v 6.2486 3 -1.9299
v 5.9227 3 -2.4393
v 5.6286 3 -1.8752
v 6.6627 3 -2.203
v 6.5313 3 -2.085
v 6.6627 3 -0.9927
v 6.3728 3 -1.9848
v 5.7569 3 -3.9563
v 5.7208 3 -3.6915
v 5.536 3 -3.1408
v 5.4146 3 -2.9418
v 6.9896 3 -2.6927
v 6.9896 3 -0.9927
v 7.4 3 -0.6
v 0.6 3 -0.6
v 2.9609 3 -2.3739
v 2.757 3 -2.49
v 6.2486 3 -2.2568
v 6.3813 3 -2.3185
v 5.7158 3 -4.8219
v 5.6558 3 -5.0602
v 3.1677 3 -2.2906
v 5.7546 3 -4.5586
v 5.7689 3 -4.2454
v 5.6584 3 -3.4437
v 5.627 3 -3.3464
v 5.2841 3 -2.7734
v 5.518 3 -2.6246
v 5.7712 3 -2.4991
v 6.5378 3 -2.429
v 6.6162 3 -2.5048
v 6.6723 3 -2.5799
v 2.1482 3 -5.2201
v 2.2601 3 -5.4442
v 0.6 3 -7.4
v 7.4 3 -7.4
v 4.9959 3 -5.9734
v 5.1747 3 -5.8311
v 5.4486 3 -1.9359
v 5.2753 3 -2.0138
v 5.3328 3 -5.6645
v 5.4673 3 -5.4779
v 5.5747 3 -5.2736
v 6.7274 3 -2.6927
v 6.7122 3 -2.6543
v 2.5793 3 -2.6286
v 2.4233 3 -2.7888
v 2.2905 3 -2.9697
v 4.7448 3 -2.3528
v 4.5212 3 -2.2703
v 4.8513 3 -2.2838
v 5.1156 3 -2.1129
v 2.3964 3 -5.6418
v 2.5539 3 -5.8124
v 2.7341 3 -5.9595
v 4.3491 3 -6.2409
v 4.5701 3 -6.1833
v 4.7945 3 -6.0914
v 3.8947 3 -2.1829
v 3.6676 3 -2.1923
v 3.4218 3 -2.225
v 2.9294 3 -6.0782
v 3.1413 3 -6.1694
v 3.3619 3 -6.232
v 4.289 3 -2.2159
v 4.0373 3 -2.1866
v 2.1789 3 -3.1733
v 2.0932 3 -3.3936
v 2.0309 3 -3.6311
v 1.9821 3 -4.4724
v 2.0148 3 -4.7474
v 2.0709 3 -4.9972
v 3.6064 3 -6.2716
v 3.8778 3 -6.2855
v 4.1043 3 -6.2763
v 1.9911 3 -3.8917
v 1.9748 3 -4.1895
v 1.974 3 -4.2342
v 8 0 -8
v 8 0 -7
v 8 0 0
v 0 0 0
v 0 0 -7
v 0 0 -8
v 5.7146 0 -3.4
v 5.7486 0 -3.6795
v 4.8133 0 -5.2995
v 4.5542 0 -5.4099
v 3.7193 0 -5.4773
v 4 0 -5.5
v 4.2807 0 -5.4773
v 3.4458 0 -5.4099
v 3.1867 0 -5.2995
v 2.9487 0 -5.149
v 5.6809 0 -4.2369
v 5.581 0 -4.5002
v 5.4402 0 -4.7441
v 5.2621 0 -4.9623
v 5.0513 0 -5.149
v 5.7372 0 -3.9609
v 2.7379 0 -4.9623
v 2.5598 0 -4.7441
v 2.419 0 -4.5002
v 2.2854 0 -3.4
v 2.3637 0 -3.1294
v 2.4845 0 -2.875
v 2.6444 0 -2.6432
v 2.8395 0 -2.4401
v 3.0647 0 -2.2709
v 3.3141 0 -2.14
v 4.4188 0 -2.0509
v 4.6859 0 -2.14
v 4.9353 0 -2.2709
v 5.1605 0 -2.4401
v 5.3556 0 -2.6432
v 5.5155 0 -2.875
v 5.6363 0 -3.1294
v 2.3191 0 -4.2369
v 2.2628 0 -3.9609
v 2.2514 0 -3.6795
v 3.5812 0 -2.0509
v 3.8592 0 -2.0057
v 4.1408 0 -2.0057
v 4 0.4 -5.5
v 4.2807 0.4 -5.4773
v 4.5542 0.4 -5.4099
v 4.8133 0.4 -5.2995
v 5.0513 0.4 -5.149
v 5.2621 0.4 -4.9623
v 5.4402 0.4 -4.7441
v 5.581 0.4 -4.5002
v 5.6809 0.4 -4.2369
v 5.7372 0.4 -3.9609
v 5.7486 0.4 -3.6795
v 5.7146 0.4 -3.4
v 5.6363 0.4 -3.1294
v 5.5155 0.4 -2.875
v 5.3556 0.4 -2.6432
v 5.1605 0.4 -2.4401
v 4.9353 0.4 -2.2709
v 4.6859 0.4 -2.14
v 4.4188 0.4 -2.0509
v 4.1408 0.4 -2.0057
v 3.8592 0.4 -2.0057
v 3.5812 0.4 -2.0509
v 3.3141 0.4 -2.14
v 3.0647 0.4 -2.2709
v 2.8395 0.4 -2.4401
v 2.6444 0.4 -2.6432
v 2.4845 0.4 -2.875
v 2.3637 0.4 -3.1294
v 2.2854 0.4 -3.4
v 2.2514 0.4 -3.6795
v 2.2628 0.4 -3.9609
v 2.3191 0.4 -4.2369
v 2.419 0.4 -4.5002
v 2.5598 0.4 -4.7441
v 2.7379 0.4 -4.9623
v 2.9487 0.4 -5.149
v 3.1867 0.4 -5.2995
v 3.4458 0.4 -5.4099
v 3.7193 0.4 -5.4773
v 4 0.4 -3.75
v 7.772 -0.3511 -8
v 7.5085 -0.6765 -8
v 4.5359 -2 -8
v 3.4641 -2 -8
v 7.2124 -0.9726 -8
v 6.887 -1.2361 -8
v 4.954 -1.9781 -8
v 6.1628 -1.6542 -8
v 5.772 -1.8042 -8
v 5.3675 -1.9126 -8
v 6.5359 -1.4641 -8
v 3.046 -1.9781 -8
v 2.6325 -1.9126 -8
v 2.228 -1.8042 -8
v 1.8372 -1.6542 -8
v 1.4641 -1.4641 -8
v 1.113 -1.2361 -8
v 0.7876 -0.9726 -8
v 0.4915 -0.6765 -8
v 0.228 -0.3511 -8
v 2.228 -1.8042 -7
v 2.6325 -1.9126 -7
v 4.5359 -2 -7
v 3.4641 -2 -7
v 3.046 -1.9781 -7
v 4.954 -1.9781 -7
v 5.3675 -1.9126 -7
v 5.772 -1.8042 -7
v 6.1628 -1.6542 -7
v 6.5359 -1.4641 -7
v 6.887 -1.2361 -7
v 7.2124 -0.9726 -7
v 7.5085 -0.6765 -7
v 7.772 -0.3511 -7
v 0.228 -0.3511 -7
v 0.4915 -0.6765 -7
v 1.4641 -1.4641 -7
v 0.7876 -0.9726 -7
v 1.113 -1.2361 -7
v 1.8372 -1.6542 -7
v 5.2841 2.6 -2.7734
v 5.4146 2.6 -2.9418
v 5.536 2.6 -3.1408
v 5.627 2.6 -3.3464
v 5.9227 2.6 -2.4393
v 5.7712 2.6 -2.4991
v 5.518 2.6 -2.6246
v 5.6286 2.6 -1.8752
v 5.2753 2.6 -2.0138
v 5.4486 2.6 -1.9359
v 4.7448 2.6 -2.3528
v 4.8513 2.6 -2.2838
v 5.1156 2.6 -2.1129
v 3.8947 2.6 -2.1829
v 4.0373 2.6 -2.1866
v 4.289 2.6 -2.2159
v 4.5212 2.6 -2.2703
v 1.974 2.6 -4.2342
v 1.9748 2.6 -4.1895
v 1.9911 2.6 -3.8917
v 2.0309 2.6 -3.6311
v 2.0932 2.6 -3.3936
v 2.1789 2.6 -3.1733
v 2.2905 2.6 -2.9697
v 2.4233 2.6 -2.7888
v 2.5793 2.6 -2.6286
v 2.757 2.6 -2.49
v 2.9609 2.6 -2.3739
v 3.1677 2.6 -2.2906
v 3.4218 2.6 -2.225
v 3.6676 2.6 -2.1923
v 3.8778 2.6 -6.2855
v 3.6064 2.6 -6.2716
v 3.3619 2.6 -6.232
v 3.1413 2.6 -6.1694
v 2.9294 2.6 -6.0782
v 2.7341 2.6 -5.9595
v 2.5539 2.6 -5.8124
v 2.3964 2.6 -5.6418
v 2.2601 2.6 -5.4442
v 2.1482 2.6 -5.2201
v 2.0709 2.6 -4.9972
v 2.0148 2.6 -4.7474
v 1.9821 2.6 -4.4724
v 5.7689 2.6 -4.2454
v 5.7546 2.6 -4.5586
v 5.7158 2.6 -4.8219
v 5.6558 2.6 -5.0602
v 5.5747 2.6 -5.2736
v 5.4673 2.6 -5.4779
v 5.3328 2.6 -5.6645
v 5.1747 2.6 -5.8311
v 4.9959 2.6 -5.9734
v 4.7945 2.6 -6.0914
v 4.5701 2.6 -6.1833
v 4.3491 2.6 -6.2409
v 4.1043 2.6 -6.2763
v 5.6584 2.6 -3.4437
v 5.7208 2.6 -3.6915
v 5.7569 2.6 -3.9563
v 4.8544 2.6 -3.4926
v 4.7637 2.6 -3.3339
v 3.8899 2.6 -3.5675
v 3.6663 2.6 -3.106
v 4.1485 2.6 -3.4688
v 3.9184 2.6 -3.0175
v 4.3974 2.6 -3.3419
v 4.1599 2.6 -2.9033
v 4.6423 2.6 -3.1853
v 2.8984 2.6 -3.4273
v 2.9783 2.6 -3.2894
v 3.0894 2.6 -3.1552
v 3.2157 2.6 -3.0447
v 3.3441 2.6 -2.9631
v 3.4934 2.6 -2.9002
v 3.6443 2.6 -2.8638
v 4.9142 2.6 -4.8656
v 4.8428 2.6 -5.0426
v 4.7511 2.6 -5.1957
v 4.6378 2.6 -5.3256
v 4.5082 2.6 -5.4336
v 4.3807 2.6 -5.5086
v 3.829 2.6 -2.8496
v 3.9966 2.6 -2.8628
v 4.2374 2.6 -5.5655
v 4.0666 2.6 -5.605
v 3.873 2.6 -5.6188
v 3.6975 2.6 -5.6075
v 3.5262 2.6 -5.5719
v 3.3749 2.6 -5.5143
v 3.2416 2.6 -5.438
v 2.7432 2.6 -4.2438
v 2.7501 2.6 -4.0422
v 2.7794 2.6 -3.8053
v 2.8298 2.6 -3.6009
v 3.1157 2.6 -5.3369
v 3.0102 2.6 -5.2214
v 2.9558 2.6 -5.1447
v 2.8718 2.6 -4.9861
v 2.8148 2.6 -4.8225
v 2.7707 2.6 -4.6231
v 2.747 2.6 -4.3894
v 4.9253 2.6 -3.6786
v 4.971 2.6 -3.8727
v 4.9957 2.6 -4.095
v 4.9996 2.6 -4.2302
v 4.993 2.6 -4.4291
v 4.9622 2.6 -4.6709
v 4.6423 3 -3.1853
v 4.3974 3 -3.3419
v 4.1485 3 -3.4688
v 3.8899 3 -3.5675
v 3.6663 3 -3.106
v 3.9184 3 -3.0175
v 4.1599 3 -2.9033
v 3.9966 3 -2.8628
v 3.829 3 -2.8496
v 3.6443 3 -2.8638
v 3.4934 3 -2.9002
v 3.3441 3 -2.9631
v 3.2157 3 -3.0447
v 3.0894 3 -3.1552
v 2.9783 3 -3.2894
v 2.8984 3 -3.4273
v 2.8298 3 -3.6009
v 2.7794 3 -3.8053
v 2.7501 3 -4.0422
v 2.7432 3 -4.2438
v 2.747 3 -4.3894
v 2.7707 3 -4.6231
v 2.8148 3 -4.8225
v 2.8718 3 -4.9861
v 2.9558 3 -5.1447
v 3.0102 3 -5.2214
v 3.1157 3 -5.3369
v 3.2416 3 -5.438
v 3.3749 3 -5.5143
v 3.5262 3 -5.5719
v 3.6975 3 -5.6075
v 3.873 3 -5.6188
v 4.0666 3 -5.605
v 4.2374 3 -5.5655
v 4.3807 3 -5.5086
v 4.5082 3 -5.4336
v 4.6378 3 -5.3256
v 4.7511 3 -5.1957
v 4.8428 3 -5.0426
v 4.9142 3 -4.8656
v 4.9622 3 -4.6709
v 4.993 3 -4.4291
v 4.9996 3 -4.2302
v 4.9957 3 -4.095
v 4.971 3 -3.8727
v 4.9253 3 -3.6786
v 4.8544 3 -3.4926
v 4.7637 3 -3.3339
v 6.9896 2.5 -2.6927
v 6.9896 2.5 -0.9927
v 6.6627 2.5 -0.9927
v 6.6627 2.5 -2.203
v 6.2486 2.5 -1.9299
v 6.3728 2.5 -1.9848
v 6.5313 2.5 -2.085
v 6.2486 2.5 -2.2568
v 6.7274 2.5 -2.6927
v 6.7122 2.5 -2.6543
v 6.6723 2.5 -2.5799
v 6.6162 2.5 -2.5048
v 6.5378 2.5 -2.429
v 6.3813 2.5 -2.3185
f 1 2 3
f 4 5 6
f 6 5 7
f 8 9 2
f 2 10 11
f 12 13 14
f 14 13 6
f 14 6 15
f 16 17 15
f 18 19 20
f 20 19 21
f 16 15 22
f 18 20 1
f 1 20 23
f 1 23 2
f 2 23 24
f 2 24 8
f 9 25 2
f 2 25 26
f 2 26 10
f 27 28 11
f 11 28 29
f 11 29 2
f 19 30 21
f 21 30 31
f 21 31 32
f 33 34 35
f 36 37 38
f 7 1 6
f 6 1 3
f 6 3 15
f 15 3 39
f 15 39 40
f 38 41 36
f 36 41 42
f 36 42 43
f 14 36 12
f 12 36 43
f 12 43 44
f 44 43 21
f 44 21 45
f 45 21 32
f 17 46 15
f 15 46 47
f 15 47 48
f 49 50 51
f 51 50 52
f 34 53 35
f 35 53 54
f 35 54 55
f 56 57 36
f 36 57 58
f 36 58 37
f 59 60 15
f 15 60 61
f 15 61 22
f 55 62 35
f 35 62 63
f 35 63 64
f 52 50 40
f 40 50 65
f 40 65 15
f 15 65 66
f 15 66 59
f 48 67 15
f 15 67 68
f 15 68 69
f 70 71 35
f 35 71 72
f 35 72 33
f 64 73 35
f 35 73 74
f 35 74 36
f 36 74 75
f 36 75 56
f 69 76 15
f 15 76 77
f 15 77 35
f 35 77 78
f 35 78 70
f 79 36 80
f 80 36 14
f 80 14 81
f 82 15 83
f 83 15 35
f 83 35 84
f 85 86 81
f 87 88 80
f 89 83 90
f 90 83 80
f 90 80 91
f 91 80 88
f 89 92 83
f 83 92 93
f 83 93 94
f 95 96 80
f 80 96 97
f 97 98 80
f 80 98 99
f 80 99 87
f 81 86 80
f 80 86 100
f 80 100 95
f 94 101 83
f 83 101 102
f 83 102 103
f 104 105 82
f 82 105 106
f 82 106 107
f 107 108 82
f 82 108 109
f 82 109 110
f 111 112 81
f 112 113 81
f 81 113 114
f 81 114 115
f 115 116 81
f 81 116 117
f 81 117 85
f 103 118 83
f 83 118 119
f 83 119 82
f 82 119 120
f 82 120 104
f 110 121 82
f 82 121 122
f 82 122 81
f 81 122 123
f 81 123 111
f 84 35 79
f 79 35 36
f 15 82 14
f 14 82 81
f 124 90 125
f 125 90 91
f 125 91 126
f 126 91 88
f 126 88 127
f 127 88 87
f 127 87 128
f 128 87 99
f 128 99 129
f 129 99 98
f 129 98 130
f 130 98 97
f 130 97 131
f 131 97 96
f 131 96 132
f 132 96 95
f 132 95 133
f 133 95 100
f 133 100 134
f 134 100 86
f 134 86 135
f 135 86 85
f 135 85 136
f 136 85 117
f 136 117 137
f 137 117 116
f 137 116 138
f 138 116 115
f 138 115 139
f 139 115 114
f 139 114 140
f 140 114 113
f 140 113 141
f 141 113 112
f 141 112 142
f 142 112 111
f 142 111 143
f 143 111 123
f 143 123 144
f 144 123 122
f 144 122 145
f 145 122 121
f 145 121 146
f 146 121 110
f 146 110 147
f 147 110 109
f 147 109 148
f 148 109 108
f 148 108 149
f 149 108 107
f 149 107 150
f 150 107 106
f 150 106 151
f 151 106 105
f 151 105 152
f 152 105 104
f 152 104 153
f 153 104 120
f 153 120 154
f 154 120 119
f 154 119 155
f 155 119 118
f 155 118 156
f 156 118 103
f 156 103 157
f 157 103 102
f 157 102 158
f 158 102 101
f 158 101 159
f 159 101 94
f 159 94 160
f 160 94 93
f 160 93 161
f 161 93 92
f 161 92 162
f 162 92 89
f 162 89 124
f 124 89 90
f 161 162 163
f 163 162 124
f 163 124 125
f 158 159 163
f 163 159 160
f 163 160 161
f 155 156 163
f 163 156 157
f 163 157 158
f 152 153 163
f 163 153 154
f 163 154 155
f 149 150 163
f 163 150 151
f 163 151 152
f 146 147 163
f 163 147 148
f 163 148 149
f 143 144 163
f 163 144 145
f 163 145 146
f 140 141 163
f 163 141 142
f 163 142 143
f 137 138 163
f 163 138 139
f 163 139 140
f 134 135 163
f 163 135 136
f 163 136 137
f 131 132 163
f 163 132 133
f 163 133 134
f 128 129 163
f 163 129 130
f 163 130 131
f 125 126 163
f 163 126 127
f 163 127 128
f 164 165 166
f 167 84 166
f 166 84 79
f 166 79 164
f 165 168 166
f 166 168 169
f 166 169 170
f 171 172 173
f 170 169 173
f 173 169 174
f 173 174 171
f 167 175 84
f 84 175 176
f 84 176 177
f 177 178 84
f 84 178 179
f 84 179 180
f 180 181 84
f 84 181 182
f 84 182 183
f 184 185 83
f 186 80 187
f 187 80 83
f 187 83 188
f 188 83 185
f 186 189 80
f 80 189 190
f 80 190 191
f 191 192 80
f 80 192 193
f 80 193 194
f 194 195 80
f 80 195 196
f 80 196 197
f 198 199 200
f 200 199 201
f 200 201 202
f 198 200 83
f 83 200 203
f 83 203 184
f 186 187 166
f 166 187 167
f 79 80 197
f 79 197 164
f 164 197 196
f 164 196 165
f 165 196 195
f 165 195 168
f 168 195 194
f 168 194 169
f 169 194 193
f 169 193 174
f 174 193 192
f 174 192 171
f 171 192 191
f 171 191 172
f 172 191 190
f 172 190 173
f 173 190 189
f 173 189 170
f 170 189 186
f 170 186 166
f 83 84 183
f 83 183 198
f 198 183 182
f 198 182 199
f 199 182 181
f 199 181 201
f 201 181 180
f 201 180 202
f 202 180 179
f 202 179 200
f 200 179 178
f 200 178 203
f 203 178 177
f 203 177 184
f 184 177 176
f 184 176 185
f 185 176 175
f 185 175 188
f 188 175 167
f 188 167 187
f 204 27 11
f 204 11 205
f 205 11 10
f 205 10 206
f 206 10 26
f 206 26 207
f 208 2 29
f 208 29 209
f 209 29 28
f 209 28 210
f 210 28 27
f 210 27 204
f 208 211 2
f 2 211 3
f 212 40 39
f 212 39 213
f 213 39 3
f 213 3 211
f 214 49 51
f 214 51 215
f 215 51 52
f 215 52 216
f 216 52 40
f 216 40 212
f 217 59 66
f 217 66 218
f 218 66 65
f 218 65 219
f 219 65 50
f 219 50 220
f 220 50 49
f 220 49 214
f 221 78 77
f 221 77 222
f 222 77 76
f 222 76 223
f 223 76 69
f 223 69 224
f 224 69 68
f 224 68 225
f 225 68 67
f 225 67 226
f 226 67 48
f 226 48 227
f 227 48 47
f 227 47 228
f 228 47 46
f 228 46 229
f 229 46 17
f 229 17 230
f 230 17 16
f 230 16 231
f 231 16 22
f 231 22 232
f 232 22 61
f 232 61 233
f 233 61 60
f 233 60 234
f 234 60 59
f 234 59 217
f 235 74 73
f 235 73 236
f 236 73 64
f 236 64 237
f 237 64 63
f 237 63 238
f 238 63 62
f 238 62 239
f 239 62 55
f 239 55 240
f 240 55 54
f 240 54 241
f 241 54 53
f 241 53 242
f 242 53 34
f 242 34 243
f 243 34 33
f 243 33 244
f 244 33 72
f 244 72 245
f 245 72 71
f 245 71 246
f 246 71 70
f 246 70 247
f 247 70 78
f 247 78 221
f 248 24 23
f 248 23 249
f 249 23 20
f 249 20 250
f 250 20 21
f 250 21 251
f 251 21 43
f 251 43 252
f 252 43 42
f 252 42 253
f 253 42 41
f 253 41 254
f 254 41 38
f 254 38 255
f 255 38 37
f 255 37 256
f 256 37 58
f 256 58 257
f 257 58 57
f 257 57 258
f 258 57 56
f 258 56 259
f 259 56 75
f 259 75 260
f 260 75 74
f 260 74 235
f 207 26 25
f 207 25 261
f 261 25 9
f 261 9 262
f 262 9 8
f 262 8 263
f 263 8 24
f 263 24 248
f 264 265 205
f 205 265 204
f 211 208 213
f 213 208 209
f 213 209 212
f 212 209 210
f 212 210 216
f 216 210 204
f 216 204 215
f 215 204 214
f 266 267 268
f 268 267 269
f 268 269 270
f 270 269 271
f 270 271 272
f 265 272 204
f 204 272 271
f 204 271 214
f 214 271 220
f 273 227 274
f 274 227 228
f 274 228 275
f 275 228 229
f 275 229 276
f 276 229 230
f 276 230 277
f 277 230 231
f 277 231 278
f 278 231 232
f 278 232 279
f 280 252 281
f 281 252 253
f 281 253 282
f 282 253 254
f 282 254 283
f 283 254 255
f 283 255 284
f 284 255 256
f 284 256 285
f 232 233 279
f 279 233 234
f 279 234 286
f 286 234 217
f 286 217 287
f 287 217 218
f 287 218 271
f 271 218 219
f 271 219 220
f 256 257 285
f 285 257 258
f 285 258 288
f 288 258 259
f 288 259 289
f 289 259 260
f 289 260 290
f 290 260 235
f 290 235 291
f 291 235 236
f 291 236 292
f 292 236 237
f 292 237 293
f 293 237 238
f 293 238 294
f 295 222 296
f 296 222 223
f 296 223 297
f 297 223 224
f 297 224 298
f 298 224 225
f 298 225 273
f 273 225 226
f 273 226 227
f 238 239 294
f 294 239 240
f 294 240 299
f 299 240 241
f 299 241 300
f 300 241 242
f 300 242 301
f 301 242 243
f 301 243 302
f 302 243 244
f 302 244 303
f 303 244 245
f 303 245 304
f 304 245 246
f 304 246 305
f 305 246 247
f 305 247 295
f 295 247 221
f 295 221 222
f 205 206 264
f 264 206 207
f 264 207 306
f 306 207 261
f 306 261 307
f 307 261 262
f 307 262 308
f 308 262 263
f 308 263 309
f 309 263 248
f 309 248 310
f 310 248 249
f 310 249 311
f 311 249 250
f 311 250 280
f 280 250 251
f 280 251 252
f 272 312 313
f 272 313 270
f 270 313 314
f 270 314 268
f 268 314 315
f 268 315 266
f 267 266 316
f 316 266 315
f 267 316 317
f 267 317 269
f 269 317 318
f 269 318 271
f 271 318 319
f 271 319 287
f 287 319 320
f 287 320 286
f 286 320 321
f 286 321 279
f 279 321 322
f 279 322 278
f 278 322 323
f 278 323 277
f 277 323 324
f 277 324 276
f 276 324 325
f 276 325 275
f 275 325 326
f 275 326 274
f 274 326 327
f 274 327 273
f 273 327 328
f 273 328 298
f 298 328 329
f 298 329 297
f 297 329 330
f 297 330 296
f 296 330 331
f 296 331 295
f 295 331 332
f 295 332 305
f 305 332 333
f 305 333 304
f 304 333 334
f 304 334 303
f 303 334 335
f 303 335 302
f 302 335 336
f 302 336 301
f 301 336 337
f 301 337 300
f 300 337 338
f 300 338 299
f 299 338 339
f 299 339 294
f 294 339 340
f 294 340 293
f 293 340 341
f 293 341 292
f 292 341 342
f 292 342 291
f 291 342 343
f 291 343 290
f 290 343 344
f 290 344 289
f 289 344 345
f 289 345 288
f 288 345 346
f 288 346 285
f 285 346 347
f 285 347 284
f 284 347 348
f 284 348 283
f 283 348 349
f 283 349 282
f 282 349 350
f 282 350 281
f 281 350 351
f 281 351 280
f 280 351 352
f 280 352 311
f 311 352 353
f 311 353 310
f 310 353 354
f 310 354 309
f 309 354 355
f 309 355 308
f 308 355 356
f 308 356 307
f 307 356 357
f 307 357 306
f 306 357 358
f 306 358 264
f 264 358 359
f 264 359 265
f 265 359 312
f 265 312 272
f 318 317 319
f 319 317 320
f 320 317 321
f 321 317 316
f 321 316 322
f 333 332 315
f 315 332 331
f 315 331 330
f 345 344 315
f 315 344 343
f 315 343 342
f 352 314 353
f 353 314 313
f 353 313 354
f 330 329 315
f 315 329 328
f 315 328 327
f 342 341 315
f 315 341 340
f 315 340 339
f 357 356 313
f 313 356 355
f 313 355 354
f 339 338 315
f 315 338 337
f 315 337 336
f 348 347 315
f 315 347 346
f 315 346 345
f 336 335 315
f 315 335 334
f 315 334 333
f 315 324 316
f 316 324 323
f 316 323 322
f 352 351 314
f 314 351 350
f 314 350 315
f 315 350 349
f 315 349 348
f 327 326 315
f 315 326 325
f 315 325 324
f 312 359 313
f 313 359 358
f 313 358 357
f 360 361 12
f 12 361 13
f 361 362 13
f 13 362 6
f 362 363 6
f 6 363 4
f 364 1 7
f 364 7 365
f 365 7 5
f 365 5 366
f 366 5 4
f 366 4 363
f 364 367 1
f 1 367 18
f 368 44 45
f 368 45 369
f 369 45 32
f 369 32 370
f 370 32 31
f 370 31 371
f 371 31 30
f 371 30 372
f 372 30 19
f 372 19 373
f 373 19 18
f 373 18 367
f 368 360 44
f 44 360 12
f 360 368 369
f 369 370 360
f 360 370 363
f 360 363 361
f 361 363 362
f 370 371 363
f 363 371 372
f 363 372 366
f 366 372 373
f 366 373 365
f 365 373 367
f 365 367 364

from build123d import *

# Parameters (mm, degrees)
SKETCH1_W               = 8
SKETCH1_H               = 8
BOSS_EXTRUDE1_DEPTH     = 3
CUT_EXTRUDE1_DEPTH      = 12.704699911
CUT_EXTRUDE1_DEPTH_BACK = 12.704699911
CUT_EXTRUDE2_DEPTH      = 11
SKETCH4_R               = 1.75
CUT_EXTRUDE3_DEPTH      = 0.4
SKETCH5_W               = 8
SKETCH5_H               = 1
BOSS_EXTRUDE2_DEPTH     = 2
FILLET1_R               = 4
CUT_EXTRUDE4_DEPTH      = 0.4
CUT_EXTRUDE5_DEPTH      = 0.5


with BuildPart() as part:
    # Sketch1 → Boss-Extrude1 (new body)
    with BuildSketch(Plane(origin=(0, 0, 0), x_dir=(1, 0, 0), z_dir=(0, 1, 0))):
        with Locations((4, 4)):
            Rectangle(SKETCH1_W, SKETCH1_H)
    extrude(amount=BOSS_EXTRUDE1_DEPTH)

    # Sketch2 → Cut-Extrude1 (cut, two sides: drawn at the far end of the back side and taken through both)
    with BuildSketch(Plane.XY.offset(-CUT_EXTRUDE1_DEPTH_BACK)):
        Polygon((0, 0), (0.6, 3), (0, 3), align=None)
        Polygon((8, 0), (7.4, 3), (8, 3), align=None)
    extrude(amount=CUT_EXTRUDE1_DEPTH + CUT_EXTRUDE1_DEPTH_BACK, mode=Mode.SUBTRACT)

    # Sketch3 → Cut-Extrude2 (cut)
    with BuildSketch(Plane(origin=(0, 0, 0), x_dir=(0, 0, -1), z_dir=(1, 0, 0))):
        Polygon((0, 0), (0.6, 3), (0, 3), align=None)
        Polygon((8, 3), (7.4, 3), (8, 0), align=None)
    extrude(amount=CUT_EXTRUDE2_DEPTH, mode=Mode.SUBTRACT)

    # Sketch4 → Cut-Extrude3 (cut)
    with BuildSketch(Plane.XZ):
        with Locations(Location((4, -3.75, 0), (0, 0, 270))):
            Circle(SKETCH4_R)
    extrude(amount=-CUT_EXTRUDE3_DEPTH, mode=Mode.SUBTRACT)

    # Sketch5 → Boss-Extrude2 (add)
    with BuildSketch(Plane.XZ):
        with Locations((4, -7.5)):
            Rectangle(SKETCH5_W, SKETCH5_H)
    extrude(amount=BOSS_EXTRUDE2_DEPTH)

    # Fillet1
    # the kernel refuses this fillet: 4 mm, written as the material it takes off along each edge
    with BuildSketch(Plane(origin=(8, -2, -16.660254038), x_dir=(0, 1, 0), z_dir=(0, 0, 1)), Plane(origin=(0, -2, 1.660254038), x_dir=(0, 1, 0), z_dir=(0, 0, -1))) as fillet1_piece_1:
        with BuildLine():
            CenterArc((4, 3.464101615), FILLET1_R, 180, 60)
            Line((0, 3.464101615), (-0.08, 3.464101615))
            Line((-0.08, 3.464101615), (-0.08, 0))
            Line((-0.08, 0), (0, -0.08))
            ThreePointArc((0, -0.08), (1, -0.08), (1.96, -0.069282032))
            Line((1.96, -0.069282032), (2, 0))
        make_face()
    extrude(amount=18.320508076, mode=Mode.SUBTRACT)

    # Sketch6 → Cut-Extrude4 (cut)
    with BuildSketch(Plane(origin=(0, 3, 0), x_dir=(1, 0, 0), z_dir=(0, 1, 0))):
        with BuildLine():
            add(Edge.make_bspline(
                [(5.284087955, 2.773445367), (5.333545491, 2.739545524), (5.432652736, 2.671614118), (5.590291823, 2.583736248), (5.752942084, 2.503846486), (5.865979951, 2.460876102), (5.92270975, 2.439310751)],
                knots=[0, 0, 0, 0, 0.994855506, 1.99357661, 2.993045438, 4, 4, 4, 4], degree=3))
            Line((5.92270975, 2.439310751), (5.628639237, 1.875208187))
            add(Edge.make_bspline(
                [(5.628639237, 1.875208187), (5.568520037, 1.893818156), (5.447325875, 1.93133395), (5.332925255, 1.986187111), (5.275273852, 2.013829982)],
                knots=[0, 0, 0, 0, 0.992113803, 2, 2, 2, 2], degree=3))
            add(Edge.make_bspline(
                [(5.275273852, 2.013829982), (5.26961656, 2.016684314), (5.253233801, 2.024950075), (5.223476786, 2.045298413), (5.178074812, 2.072724498), (5.118973761, 2.11071311), (5.045578888, 2.157800121), (4.95765273, 2.213934729), (4.856407872, 2.280704114), (4.783596416, 2.327731001), (4.744825134, 2.35277229)],
                knots=[0, 0, 0, 0, 0.241377655, 0.698997227, 1.371388316, 2.263975901, 3.376788369, 4.695767198, 6.240533187, 8, 8, 8, 8], degree=3))
            add(Edge.make_bspline(
                [(4.744825134, 2.35277229), (4.712670389, 2.339001865), (4.648050063, 2.311327899), (4.547788838, 2.27725121), (4.444978029, 2.248544986), (4.339982896, 2.224200245), (4.232359046, 2.206111381), (4.122258624, 2.192239309), (4.00937299, 2.18410397), (3.933139287, 2.183304154), (3.894664878, 2.182900495)],
                knots=[0, 0, 0, 0, 0.961025642, 1.931341354, 2.907359807, 3.893838693, 4.891829695, 5.905170566, 6.942759923, 8, 8, 8, 8], degree=3))
            add(Edge.make_bspline(
                [(3.894664878, 2.182900495), (3.821683976, 2.184676763), (3.679027131, 2.188148859), (3.471015208, 2.212756542), (3.275562804, 2.255408477), (3.091812023, 2.313667662), (2.920867424, 2.390147666), (2.761229426, 2.482594503), (2.615108223, 2.593406711), (2.480490537, 2.71918809), (2.361392609, 2.861354588), (2.257130725, 3.017424584), (2.168806746, 3.186880722), (2.097587685, 3.370615377), (2.041301668, 3.567142879), (2.002926315, 3.777850586), (1.978227581, 4.001488849), (1.975427333, 4.155321196), (1.973991801, 4.234182546)],
                knots=[0, 0, 0, 0, 1.098101164, 2.146474535, 3.146072545, 4.104420533, 5.041773038, 5.958565538, 6.874115049, 7.795336865, 8.725215067, 9.658214839, 10.614563411, 11.594512188, 12.618591104, 13.685899083, 14.813688224, 16, 16, 16, 16], degree=3))
            add(Edge.make_bspline(
                [(1.973991801, 4.234182546), (1.97543059, 4.313040679), (1.978227497, 4.466335509), (2.002757559, 4.689542909), (2.042412611, 4.899497801), (2.098124704, 5.096337583), (2.170410456, 5.279545107), (2.259079723, 5.449017762), (2.363505524, 5.605417057), (2.484015277, 5.747270094), (2.617919267, 5.874338646), (2.764464989, 5.984327234), (2.9219486, 6.078236158), (3.090996271, 6.154643933), (3.272074664, 6.212871015), (3.463805003, 6.255387163), (3.667248709, 6.280295733), (3.806454886, 6.283712517), (3.877837955, 6.285464598)],
                knots=[0, 0, 0, 0, 1.193283781, 2.319662245, 3.393996131, 4.424093603, 5.411284417, 6.369670503, 7.313761776, 8.251713527, 9.181123148, 10.102053383, 11.01932051, 11.951118596, 12.903560284, 13.893239571, 14.919681386, 16, 16, 16, 16], degree=3))
            add(Edge.make_bspline(
                [(3.877837955, 6.285464598), (3.948708316, 6.284176334), (4.086935049, 6.281663683), (4.288489067, 6.254790298), (4.478939684, 6.214016744), (4.658513444, 6.155241629), (4.826290277, 6.078911265), (4.983143341, 5.98623667), (5.128157857, 5.876434989), (5.26137487, 5.750578969), (5.380523981, 5.609215368), (5.486073462, 5.454669187), (5.572731816, 5.285035211), (5.645736122, 5.103191508), (5.700157026, 4.90736457), (5.740330715, 4.69867705), (5.764520815, 4.476471411), (5.76739165, 4.323719862), (5.768863596, 4.245400495)],
                knots=[0, 0, 0, 0, 1.078752742, 2.104017338, 3.091035458, 4.041673215, 4.975566109, 5.892967701, 6.810684895, 7.740128604, 8.678185021, 9.621404646, 10.583875016, 11.573429805, 12.6009998, 13.674031063, 14.80742018, 16, 16, 16, 16], degree=3))
            add(Edge.make_bspline(
                [(5.768863596, 4.245400495), (5.767275795, 4.16278925), (5.764189157, 4.002195454), (5.737326284, 3.768977018), (5.693780668, 3.550562854), (5.648918616, 3.41330904), (5.627036673, 3.346362034)],
                knots=[0, 0, 0, 0, 1.083667057, 2.106616435, 3.076482036, 4, 4, 4, 4], degree=3))
            add(Edge.make_bspline(
                [(5.627036673, 3.346362034), (5.607421404, 3.297050064), (5.567517691, 3.196733787), (5.488642668, 3.051933408), (5.394797316, 2.909076479), (5.321514211, 2.819296637), (5.284087955, 2.773445367)],
                knots=[0, 0, 0, 0, 0.948216854, 1.928975575, 2.942311585, 4, 4, 4, 4], degree=3))
        make_face()
        with BuildLine():
            add(Edge.make_bspline(
                [(4.642261032, 3.185304341), (4.671182259, 3.216922768), (4.72909393, 3.280235293), (4.800707281, 3.388678336), (4.863230922, 3.50497094), (4.912388312, 3.632014464), (4.951923574, 3.76787431), (4.97951585, 3.913560578), (4.996652709, 4.068707035), (4.998621406, 4.175375245), (4.999632827, 4.230176136)],
                knots=[0, 0, 0, 0, 0.906820982, 1.815812261, 2.745108282, 3.70056618, 4.696560745, 5.740060838, 6.83895416, 8, 8, 8, 8], degree=3))
            add(Edge.make_bspline(
                [(4.999632827, 4.230176136), (4.998745764, 4.286560817), (4.997027382, 4.395786947), (4.982794262, 4.554398979), (4.957747484, 4.70183414), (4.925058455, 4.838707416), (4.88052022, 4.963910999), (4.826807351, 5.078388614), (4.763835344, 5.182421929), (4.690056733, 5.274294514), (4.608907177, 5.355063587), (4.522159409, 5.426414517), (4.428546166, 5.486139657), (4.328544236, 5.534184829), (4.222990468, 5.571989212), (4.111634776, 5.59943433), (3.994225982, 5.615495039), (3.913944994, 5.6176829), (3.873030263, 5.618797931)],
                knots=[0, 0, 0, 0, 1.335693338, 2.587451293, 3.768164612, 4.876224393, 5.916940853, 6.910477009, 7.867661778, 8.790666633, 9.694493319, 10.576027549, 11.446684429, 12.318352473, 13.199023277, 14.098364444, 15.030842682, 16, 16, 16, 16], degree=3))
            add(Edge.make_bspline(
                [(3.873030263, 5.618797931), (3.831841607, 5.617719084), (3.751279942, 5.615608947), (3.633755604, 5.599158788), (3.522145798, 5.573035665), (3.416723766, 5.534932642), (3.316536446, 5.486796326), (3.222573421, 5.427181815), (3.134847786, 5.356951252), (3.053289548, 5.276692152), (2.980446173, 5.184790487), (2.915694165, 5.082568667), (2.862164439, 4.968850144), (2.819178201, 4.84427298), (2.784825228, 4.709477379), (2.760087026, 4.563739976), (2.745835322, 4.407279692), (2.744110931, 4.299383286), (2.74322257, 4.243797931)],
                knots=[0, 0, 0, 0, 0.980107447, 1.917010591, 2.819119613, 3.703969481, 4.579773866, 5.459928929, 6.346604172, 7.250235365, 8.177620171, 9.131899985, 10.124404622, 11.161948974, 12.264485933, 13.431998172, 14.677033863, 16, 16, 16, 16], degree=3))
            add(Edge.make_bspline(
                [(2.74322257, 4.243797931), (2.744089067, 4.187408458), (2.745771696, 4.077907007), (2.760333697, 3.91913972), (2.783941374, 3.771215716), (2.817547327, 3.634196218), (2.86051391, 3.507924697), (2.913437174, 3.392577112), (2.976036542, 3.288297709), (3.048513511, 3.196032652), (3.128245057, 3.114861766), (3.213441608, 3.04409835), (3.303411645, 2.983479498), (3.39857486, 2.934226809), (3.498956775, 2.896402137), (3.604207339, 2.869103357), (3.714939061, 2.852831885), (3.790443662, 2.850669982), (3.82895975, 2.849567162)],
                knots=[0, 0, 0, 0, 1.356840463, 2.634818045, 3.833173645, 4.958776583, 6.025986406, 7.038359119, 8.007356852, 8.946032033, 9.855123386, 10.740685277, 11.607120956, 12.460971081, 13.313368256, 14.183325659, 15.073285775, 16, 16, 16, 16], degree=3))
            add(Edge.make_bspline(
                [(3.82895975, 2.849567162), (3.857844622, 2.850073951), (3.914741814, 2.851072222), (3.998801079, 2.862293633), (4.080683558, 2.878515583), (4.133570622, 2.895033243), (4.159889237, 2.903253059)],
                knots=[0, 0, 0, 0, 1.028828871, 2.026578908, 3.017950568, 4, 4, 4, 4], degree=3))
            add(Edge.make_bspline(
                [(4.159889237, 2.903253059), (4.119539232, 2.924336443), (4.039635796, 2.966086993), (3.916101198, 3.019284802), (3.792319766, 3.067214804), (3.708133251, 3.09310976), (3.666299493, 3.105977418)],
                knots=[0, 0, 0, 0, 1.021704821, 2.023239566, 3.017713044, 4, 4, 4, 4], degree=3))
            Line((3.666299493, 3.105977418), (3.889857186, 3.56751588))
            add(Edge.make_bspline(
                [(3.889857186, 3.56751588), (3.955233958, 3.544923565), (4.086618506, 3.49952088), (4.276409331, 3.409366748), (4.463555304, 3.306758821), (4.582244486, 3.226093623), (4.642261032, 3.185304341)],
                knots=[0, 0, 0, 0, 0.979271047, 1.967993817, 2.972492781, 4, 4, 4, 4], degree=3))
        make_face(mode=Mode.SUBTRACT)
    extrude(amount=-CUT_EXTRUDE4_DEPTH, mode=Mode.SUBTRACT)

    # Sketch7 → Cut-Extrude5 (cut)
    with BuildSketch(Plane(origin=(0, 3, 0), x_dir=(1, 0, 0), z_dir=(0, 1, 0))):
        with BuildLine():
            Line((6.989609495, 0.992731968), (6.662686419, 0.992731968))
            Line((6.662686419, 0.992731968), (6.662686419, 2.203028442))
            add(Edge.make_bspline(
                [(6.662686419, 2.203028442), (6.647868508, 2.187985499), (6.618433709, 2.158103687), (6.571421698, 2.116422543), (6.522616062, 2.07764809), (6.471533827, 2.042148614), (6.418842766, 2.009418309), (6.364004407, 1.979715431), (6.307416238, 1.952628999), (6.268215163, 1.937491891), (6.248583854, 1.929911455)],
                knots=[0, 0, 0, 0, 1.012567276, 2.011397996, 3.011400399, 4.000747768, 4.993445519, 5.985067596, 6.990952157, 8, 8, 8, 8], degree=3))
            Line((6.248583854, 1.929911455), (6.248583854, 2.256834532))
            add(Edge.make_bspline(
                [(6.248583854, 2.256834532), (6.270355964, 2.264998139), (6.315923296, 2.282083933), (6.383165354, 2.318426283), (6.453350876, 2.363421778), (6.512310721, 2.40755194), (6.559122414, 2.44678718), (6.591840229, 2.478326157), (6.622155165, 2.510623705), (6.648927745, 2.544722271), (6.672860762, 2.579932457), (6.694066458, 2.616196741), (6.712732345, 2.65362968), (6.722503807, 2.679697149), (6.727389944, 2.692731968)],
                knots=[0, 0, 0, 0, 1.253673617, 2.623841347, 4.114270668, 5.751233548, 6.594491912, 7.409089316, 8.202422231, 8.983165545, 9.746111525, 10.498431446, 11.249153235, 12, 12, 12, 12], degree=3))
            Line((6.727389944, 2.692731968), (6.989609495, 2.692731968))
            Line((6.989609495, 2.692731968), (6.989609495, 0.992731968))
        make_face()
    extrude(amount=-CUT_EXTRUDE5_DEPTH, mode=Mode.SUBTRACT)


solid = part.part
